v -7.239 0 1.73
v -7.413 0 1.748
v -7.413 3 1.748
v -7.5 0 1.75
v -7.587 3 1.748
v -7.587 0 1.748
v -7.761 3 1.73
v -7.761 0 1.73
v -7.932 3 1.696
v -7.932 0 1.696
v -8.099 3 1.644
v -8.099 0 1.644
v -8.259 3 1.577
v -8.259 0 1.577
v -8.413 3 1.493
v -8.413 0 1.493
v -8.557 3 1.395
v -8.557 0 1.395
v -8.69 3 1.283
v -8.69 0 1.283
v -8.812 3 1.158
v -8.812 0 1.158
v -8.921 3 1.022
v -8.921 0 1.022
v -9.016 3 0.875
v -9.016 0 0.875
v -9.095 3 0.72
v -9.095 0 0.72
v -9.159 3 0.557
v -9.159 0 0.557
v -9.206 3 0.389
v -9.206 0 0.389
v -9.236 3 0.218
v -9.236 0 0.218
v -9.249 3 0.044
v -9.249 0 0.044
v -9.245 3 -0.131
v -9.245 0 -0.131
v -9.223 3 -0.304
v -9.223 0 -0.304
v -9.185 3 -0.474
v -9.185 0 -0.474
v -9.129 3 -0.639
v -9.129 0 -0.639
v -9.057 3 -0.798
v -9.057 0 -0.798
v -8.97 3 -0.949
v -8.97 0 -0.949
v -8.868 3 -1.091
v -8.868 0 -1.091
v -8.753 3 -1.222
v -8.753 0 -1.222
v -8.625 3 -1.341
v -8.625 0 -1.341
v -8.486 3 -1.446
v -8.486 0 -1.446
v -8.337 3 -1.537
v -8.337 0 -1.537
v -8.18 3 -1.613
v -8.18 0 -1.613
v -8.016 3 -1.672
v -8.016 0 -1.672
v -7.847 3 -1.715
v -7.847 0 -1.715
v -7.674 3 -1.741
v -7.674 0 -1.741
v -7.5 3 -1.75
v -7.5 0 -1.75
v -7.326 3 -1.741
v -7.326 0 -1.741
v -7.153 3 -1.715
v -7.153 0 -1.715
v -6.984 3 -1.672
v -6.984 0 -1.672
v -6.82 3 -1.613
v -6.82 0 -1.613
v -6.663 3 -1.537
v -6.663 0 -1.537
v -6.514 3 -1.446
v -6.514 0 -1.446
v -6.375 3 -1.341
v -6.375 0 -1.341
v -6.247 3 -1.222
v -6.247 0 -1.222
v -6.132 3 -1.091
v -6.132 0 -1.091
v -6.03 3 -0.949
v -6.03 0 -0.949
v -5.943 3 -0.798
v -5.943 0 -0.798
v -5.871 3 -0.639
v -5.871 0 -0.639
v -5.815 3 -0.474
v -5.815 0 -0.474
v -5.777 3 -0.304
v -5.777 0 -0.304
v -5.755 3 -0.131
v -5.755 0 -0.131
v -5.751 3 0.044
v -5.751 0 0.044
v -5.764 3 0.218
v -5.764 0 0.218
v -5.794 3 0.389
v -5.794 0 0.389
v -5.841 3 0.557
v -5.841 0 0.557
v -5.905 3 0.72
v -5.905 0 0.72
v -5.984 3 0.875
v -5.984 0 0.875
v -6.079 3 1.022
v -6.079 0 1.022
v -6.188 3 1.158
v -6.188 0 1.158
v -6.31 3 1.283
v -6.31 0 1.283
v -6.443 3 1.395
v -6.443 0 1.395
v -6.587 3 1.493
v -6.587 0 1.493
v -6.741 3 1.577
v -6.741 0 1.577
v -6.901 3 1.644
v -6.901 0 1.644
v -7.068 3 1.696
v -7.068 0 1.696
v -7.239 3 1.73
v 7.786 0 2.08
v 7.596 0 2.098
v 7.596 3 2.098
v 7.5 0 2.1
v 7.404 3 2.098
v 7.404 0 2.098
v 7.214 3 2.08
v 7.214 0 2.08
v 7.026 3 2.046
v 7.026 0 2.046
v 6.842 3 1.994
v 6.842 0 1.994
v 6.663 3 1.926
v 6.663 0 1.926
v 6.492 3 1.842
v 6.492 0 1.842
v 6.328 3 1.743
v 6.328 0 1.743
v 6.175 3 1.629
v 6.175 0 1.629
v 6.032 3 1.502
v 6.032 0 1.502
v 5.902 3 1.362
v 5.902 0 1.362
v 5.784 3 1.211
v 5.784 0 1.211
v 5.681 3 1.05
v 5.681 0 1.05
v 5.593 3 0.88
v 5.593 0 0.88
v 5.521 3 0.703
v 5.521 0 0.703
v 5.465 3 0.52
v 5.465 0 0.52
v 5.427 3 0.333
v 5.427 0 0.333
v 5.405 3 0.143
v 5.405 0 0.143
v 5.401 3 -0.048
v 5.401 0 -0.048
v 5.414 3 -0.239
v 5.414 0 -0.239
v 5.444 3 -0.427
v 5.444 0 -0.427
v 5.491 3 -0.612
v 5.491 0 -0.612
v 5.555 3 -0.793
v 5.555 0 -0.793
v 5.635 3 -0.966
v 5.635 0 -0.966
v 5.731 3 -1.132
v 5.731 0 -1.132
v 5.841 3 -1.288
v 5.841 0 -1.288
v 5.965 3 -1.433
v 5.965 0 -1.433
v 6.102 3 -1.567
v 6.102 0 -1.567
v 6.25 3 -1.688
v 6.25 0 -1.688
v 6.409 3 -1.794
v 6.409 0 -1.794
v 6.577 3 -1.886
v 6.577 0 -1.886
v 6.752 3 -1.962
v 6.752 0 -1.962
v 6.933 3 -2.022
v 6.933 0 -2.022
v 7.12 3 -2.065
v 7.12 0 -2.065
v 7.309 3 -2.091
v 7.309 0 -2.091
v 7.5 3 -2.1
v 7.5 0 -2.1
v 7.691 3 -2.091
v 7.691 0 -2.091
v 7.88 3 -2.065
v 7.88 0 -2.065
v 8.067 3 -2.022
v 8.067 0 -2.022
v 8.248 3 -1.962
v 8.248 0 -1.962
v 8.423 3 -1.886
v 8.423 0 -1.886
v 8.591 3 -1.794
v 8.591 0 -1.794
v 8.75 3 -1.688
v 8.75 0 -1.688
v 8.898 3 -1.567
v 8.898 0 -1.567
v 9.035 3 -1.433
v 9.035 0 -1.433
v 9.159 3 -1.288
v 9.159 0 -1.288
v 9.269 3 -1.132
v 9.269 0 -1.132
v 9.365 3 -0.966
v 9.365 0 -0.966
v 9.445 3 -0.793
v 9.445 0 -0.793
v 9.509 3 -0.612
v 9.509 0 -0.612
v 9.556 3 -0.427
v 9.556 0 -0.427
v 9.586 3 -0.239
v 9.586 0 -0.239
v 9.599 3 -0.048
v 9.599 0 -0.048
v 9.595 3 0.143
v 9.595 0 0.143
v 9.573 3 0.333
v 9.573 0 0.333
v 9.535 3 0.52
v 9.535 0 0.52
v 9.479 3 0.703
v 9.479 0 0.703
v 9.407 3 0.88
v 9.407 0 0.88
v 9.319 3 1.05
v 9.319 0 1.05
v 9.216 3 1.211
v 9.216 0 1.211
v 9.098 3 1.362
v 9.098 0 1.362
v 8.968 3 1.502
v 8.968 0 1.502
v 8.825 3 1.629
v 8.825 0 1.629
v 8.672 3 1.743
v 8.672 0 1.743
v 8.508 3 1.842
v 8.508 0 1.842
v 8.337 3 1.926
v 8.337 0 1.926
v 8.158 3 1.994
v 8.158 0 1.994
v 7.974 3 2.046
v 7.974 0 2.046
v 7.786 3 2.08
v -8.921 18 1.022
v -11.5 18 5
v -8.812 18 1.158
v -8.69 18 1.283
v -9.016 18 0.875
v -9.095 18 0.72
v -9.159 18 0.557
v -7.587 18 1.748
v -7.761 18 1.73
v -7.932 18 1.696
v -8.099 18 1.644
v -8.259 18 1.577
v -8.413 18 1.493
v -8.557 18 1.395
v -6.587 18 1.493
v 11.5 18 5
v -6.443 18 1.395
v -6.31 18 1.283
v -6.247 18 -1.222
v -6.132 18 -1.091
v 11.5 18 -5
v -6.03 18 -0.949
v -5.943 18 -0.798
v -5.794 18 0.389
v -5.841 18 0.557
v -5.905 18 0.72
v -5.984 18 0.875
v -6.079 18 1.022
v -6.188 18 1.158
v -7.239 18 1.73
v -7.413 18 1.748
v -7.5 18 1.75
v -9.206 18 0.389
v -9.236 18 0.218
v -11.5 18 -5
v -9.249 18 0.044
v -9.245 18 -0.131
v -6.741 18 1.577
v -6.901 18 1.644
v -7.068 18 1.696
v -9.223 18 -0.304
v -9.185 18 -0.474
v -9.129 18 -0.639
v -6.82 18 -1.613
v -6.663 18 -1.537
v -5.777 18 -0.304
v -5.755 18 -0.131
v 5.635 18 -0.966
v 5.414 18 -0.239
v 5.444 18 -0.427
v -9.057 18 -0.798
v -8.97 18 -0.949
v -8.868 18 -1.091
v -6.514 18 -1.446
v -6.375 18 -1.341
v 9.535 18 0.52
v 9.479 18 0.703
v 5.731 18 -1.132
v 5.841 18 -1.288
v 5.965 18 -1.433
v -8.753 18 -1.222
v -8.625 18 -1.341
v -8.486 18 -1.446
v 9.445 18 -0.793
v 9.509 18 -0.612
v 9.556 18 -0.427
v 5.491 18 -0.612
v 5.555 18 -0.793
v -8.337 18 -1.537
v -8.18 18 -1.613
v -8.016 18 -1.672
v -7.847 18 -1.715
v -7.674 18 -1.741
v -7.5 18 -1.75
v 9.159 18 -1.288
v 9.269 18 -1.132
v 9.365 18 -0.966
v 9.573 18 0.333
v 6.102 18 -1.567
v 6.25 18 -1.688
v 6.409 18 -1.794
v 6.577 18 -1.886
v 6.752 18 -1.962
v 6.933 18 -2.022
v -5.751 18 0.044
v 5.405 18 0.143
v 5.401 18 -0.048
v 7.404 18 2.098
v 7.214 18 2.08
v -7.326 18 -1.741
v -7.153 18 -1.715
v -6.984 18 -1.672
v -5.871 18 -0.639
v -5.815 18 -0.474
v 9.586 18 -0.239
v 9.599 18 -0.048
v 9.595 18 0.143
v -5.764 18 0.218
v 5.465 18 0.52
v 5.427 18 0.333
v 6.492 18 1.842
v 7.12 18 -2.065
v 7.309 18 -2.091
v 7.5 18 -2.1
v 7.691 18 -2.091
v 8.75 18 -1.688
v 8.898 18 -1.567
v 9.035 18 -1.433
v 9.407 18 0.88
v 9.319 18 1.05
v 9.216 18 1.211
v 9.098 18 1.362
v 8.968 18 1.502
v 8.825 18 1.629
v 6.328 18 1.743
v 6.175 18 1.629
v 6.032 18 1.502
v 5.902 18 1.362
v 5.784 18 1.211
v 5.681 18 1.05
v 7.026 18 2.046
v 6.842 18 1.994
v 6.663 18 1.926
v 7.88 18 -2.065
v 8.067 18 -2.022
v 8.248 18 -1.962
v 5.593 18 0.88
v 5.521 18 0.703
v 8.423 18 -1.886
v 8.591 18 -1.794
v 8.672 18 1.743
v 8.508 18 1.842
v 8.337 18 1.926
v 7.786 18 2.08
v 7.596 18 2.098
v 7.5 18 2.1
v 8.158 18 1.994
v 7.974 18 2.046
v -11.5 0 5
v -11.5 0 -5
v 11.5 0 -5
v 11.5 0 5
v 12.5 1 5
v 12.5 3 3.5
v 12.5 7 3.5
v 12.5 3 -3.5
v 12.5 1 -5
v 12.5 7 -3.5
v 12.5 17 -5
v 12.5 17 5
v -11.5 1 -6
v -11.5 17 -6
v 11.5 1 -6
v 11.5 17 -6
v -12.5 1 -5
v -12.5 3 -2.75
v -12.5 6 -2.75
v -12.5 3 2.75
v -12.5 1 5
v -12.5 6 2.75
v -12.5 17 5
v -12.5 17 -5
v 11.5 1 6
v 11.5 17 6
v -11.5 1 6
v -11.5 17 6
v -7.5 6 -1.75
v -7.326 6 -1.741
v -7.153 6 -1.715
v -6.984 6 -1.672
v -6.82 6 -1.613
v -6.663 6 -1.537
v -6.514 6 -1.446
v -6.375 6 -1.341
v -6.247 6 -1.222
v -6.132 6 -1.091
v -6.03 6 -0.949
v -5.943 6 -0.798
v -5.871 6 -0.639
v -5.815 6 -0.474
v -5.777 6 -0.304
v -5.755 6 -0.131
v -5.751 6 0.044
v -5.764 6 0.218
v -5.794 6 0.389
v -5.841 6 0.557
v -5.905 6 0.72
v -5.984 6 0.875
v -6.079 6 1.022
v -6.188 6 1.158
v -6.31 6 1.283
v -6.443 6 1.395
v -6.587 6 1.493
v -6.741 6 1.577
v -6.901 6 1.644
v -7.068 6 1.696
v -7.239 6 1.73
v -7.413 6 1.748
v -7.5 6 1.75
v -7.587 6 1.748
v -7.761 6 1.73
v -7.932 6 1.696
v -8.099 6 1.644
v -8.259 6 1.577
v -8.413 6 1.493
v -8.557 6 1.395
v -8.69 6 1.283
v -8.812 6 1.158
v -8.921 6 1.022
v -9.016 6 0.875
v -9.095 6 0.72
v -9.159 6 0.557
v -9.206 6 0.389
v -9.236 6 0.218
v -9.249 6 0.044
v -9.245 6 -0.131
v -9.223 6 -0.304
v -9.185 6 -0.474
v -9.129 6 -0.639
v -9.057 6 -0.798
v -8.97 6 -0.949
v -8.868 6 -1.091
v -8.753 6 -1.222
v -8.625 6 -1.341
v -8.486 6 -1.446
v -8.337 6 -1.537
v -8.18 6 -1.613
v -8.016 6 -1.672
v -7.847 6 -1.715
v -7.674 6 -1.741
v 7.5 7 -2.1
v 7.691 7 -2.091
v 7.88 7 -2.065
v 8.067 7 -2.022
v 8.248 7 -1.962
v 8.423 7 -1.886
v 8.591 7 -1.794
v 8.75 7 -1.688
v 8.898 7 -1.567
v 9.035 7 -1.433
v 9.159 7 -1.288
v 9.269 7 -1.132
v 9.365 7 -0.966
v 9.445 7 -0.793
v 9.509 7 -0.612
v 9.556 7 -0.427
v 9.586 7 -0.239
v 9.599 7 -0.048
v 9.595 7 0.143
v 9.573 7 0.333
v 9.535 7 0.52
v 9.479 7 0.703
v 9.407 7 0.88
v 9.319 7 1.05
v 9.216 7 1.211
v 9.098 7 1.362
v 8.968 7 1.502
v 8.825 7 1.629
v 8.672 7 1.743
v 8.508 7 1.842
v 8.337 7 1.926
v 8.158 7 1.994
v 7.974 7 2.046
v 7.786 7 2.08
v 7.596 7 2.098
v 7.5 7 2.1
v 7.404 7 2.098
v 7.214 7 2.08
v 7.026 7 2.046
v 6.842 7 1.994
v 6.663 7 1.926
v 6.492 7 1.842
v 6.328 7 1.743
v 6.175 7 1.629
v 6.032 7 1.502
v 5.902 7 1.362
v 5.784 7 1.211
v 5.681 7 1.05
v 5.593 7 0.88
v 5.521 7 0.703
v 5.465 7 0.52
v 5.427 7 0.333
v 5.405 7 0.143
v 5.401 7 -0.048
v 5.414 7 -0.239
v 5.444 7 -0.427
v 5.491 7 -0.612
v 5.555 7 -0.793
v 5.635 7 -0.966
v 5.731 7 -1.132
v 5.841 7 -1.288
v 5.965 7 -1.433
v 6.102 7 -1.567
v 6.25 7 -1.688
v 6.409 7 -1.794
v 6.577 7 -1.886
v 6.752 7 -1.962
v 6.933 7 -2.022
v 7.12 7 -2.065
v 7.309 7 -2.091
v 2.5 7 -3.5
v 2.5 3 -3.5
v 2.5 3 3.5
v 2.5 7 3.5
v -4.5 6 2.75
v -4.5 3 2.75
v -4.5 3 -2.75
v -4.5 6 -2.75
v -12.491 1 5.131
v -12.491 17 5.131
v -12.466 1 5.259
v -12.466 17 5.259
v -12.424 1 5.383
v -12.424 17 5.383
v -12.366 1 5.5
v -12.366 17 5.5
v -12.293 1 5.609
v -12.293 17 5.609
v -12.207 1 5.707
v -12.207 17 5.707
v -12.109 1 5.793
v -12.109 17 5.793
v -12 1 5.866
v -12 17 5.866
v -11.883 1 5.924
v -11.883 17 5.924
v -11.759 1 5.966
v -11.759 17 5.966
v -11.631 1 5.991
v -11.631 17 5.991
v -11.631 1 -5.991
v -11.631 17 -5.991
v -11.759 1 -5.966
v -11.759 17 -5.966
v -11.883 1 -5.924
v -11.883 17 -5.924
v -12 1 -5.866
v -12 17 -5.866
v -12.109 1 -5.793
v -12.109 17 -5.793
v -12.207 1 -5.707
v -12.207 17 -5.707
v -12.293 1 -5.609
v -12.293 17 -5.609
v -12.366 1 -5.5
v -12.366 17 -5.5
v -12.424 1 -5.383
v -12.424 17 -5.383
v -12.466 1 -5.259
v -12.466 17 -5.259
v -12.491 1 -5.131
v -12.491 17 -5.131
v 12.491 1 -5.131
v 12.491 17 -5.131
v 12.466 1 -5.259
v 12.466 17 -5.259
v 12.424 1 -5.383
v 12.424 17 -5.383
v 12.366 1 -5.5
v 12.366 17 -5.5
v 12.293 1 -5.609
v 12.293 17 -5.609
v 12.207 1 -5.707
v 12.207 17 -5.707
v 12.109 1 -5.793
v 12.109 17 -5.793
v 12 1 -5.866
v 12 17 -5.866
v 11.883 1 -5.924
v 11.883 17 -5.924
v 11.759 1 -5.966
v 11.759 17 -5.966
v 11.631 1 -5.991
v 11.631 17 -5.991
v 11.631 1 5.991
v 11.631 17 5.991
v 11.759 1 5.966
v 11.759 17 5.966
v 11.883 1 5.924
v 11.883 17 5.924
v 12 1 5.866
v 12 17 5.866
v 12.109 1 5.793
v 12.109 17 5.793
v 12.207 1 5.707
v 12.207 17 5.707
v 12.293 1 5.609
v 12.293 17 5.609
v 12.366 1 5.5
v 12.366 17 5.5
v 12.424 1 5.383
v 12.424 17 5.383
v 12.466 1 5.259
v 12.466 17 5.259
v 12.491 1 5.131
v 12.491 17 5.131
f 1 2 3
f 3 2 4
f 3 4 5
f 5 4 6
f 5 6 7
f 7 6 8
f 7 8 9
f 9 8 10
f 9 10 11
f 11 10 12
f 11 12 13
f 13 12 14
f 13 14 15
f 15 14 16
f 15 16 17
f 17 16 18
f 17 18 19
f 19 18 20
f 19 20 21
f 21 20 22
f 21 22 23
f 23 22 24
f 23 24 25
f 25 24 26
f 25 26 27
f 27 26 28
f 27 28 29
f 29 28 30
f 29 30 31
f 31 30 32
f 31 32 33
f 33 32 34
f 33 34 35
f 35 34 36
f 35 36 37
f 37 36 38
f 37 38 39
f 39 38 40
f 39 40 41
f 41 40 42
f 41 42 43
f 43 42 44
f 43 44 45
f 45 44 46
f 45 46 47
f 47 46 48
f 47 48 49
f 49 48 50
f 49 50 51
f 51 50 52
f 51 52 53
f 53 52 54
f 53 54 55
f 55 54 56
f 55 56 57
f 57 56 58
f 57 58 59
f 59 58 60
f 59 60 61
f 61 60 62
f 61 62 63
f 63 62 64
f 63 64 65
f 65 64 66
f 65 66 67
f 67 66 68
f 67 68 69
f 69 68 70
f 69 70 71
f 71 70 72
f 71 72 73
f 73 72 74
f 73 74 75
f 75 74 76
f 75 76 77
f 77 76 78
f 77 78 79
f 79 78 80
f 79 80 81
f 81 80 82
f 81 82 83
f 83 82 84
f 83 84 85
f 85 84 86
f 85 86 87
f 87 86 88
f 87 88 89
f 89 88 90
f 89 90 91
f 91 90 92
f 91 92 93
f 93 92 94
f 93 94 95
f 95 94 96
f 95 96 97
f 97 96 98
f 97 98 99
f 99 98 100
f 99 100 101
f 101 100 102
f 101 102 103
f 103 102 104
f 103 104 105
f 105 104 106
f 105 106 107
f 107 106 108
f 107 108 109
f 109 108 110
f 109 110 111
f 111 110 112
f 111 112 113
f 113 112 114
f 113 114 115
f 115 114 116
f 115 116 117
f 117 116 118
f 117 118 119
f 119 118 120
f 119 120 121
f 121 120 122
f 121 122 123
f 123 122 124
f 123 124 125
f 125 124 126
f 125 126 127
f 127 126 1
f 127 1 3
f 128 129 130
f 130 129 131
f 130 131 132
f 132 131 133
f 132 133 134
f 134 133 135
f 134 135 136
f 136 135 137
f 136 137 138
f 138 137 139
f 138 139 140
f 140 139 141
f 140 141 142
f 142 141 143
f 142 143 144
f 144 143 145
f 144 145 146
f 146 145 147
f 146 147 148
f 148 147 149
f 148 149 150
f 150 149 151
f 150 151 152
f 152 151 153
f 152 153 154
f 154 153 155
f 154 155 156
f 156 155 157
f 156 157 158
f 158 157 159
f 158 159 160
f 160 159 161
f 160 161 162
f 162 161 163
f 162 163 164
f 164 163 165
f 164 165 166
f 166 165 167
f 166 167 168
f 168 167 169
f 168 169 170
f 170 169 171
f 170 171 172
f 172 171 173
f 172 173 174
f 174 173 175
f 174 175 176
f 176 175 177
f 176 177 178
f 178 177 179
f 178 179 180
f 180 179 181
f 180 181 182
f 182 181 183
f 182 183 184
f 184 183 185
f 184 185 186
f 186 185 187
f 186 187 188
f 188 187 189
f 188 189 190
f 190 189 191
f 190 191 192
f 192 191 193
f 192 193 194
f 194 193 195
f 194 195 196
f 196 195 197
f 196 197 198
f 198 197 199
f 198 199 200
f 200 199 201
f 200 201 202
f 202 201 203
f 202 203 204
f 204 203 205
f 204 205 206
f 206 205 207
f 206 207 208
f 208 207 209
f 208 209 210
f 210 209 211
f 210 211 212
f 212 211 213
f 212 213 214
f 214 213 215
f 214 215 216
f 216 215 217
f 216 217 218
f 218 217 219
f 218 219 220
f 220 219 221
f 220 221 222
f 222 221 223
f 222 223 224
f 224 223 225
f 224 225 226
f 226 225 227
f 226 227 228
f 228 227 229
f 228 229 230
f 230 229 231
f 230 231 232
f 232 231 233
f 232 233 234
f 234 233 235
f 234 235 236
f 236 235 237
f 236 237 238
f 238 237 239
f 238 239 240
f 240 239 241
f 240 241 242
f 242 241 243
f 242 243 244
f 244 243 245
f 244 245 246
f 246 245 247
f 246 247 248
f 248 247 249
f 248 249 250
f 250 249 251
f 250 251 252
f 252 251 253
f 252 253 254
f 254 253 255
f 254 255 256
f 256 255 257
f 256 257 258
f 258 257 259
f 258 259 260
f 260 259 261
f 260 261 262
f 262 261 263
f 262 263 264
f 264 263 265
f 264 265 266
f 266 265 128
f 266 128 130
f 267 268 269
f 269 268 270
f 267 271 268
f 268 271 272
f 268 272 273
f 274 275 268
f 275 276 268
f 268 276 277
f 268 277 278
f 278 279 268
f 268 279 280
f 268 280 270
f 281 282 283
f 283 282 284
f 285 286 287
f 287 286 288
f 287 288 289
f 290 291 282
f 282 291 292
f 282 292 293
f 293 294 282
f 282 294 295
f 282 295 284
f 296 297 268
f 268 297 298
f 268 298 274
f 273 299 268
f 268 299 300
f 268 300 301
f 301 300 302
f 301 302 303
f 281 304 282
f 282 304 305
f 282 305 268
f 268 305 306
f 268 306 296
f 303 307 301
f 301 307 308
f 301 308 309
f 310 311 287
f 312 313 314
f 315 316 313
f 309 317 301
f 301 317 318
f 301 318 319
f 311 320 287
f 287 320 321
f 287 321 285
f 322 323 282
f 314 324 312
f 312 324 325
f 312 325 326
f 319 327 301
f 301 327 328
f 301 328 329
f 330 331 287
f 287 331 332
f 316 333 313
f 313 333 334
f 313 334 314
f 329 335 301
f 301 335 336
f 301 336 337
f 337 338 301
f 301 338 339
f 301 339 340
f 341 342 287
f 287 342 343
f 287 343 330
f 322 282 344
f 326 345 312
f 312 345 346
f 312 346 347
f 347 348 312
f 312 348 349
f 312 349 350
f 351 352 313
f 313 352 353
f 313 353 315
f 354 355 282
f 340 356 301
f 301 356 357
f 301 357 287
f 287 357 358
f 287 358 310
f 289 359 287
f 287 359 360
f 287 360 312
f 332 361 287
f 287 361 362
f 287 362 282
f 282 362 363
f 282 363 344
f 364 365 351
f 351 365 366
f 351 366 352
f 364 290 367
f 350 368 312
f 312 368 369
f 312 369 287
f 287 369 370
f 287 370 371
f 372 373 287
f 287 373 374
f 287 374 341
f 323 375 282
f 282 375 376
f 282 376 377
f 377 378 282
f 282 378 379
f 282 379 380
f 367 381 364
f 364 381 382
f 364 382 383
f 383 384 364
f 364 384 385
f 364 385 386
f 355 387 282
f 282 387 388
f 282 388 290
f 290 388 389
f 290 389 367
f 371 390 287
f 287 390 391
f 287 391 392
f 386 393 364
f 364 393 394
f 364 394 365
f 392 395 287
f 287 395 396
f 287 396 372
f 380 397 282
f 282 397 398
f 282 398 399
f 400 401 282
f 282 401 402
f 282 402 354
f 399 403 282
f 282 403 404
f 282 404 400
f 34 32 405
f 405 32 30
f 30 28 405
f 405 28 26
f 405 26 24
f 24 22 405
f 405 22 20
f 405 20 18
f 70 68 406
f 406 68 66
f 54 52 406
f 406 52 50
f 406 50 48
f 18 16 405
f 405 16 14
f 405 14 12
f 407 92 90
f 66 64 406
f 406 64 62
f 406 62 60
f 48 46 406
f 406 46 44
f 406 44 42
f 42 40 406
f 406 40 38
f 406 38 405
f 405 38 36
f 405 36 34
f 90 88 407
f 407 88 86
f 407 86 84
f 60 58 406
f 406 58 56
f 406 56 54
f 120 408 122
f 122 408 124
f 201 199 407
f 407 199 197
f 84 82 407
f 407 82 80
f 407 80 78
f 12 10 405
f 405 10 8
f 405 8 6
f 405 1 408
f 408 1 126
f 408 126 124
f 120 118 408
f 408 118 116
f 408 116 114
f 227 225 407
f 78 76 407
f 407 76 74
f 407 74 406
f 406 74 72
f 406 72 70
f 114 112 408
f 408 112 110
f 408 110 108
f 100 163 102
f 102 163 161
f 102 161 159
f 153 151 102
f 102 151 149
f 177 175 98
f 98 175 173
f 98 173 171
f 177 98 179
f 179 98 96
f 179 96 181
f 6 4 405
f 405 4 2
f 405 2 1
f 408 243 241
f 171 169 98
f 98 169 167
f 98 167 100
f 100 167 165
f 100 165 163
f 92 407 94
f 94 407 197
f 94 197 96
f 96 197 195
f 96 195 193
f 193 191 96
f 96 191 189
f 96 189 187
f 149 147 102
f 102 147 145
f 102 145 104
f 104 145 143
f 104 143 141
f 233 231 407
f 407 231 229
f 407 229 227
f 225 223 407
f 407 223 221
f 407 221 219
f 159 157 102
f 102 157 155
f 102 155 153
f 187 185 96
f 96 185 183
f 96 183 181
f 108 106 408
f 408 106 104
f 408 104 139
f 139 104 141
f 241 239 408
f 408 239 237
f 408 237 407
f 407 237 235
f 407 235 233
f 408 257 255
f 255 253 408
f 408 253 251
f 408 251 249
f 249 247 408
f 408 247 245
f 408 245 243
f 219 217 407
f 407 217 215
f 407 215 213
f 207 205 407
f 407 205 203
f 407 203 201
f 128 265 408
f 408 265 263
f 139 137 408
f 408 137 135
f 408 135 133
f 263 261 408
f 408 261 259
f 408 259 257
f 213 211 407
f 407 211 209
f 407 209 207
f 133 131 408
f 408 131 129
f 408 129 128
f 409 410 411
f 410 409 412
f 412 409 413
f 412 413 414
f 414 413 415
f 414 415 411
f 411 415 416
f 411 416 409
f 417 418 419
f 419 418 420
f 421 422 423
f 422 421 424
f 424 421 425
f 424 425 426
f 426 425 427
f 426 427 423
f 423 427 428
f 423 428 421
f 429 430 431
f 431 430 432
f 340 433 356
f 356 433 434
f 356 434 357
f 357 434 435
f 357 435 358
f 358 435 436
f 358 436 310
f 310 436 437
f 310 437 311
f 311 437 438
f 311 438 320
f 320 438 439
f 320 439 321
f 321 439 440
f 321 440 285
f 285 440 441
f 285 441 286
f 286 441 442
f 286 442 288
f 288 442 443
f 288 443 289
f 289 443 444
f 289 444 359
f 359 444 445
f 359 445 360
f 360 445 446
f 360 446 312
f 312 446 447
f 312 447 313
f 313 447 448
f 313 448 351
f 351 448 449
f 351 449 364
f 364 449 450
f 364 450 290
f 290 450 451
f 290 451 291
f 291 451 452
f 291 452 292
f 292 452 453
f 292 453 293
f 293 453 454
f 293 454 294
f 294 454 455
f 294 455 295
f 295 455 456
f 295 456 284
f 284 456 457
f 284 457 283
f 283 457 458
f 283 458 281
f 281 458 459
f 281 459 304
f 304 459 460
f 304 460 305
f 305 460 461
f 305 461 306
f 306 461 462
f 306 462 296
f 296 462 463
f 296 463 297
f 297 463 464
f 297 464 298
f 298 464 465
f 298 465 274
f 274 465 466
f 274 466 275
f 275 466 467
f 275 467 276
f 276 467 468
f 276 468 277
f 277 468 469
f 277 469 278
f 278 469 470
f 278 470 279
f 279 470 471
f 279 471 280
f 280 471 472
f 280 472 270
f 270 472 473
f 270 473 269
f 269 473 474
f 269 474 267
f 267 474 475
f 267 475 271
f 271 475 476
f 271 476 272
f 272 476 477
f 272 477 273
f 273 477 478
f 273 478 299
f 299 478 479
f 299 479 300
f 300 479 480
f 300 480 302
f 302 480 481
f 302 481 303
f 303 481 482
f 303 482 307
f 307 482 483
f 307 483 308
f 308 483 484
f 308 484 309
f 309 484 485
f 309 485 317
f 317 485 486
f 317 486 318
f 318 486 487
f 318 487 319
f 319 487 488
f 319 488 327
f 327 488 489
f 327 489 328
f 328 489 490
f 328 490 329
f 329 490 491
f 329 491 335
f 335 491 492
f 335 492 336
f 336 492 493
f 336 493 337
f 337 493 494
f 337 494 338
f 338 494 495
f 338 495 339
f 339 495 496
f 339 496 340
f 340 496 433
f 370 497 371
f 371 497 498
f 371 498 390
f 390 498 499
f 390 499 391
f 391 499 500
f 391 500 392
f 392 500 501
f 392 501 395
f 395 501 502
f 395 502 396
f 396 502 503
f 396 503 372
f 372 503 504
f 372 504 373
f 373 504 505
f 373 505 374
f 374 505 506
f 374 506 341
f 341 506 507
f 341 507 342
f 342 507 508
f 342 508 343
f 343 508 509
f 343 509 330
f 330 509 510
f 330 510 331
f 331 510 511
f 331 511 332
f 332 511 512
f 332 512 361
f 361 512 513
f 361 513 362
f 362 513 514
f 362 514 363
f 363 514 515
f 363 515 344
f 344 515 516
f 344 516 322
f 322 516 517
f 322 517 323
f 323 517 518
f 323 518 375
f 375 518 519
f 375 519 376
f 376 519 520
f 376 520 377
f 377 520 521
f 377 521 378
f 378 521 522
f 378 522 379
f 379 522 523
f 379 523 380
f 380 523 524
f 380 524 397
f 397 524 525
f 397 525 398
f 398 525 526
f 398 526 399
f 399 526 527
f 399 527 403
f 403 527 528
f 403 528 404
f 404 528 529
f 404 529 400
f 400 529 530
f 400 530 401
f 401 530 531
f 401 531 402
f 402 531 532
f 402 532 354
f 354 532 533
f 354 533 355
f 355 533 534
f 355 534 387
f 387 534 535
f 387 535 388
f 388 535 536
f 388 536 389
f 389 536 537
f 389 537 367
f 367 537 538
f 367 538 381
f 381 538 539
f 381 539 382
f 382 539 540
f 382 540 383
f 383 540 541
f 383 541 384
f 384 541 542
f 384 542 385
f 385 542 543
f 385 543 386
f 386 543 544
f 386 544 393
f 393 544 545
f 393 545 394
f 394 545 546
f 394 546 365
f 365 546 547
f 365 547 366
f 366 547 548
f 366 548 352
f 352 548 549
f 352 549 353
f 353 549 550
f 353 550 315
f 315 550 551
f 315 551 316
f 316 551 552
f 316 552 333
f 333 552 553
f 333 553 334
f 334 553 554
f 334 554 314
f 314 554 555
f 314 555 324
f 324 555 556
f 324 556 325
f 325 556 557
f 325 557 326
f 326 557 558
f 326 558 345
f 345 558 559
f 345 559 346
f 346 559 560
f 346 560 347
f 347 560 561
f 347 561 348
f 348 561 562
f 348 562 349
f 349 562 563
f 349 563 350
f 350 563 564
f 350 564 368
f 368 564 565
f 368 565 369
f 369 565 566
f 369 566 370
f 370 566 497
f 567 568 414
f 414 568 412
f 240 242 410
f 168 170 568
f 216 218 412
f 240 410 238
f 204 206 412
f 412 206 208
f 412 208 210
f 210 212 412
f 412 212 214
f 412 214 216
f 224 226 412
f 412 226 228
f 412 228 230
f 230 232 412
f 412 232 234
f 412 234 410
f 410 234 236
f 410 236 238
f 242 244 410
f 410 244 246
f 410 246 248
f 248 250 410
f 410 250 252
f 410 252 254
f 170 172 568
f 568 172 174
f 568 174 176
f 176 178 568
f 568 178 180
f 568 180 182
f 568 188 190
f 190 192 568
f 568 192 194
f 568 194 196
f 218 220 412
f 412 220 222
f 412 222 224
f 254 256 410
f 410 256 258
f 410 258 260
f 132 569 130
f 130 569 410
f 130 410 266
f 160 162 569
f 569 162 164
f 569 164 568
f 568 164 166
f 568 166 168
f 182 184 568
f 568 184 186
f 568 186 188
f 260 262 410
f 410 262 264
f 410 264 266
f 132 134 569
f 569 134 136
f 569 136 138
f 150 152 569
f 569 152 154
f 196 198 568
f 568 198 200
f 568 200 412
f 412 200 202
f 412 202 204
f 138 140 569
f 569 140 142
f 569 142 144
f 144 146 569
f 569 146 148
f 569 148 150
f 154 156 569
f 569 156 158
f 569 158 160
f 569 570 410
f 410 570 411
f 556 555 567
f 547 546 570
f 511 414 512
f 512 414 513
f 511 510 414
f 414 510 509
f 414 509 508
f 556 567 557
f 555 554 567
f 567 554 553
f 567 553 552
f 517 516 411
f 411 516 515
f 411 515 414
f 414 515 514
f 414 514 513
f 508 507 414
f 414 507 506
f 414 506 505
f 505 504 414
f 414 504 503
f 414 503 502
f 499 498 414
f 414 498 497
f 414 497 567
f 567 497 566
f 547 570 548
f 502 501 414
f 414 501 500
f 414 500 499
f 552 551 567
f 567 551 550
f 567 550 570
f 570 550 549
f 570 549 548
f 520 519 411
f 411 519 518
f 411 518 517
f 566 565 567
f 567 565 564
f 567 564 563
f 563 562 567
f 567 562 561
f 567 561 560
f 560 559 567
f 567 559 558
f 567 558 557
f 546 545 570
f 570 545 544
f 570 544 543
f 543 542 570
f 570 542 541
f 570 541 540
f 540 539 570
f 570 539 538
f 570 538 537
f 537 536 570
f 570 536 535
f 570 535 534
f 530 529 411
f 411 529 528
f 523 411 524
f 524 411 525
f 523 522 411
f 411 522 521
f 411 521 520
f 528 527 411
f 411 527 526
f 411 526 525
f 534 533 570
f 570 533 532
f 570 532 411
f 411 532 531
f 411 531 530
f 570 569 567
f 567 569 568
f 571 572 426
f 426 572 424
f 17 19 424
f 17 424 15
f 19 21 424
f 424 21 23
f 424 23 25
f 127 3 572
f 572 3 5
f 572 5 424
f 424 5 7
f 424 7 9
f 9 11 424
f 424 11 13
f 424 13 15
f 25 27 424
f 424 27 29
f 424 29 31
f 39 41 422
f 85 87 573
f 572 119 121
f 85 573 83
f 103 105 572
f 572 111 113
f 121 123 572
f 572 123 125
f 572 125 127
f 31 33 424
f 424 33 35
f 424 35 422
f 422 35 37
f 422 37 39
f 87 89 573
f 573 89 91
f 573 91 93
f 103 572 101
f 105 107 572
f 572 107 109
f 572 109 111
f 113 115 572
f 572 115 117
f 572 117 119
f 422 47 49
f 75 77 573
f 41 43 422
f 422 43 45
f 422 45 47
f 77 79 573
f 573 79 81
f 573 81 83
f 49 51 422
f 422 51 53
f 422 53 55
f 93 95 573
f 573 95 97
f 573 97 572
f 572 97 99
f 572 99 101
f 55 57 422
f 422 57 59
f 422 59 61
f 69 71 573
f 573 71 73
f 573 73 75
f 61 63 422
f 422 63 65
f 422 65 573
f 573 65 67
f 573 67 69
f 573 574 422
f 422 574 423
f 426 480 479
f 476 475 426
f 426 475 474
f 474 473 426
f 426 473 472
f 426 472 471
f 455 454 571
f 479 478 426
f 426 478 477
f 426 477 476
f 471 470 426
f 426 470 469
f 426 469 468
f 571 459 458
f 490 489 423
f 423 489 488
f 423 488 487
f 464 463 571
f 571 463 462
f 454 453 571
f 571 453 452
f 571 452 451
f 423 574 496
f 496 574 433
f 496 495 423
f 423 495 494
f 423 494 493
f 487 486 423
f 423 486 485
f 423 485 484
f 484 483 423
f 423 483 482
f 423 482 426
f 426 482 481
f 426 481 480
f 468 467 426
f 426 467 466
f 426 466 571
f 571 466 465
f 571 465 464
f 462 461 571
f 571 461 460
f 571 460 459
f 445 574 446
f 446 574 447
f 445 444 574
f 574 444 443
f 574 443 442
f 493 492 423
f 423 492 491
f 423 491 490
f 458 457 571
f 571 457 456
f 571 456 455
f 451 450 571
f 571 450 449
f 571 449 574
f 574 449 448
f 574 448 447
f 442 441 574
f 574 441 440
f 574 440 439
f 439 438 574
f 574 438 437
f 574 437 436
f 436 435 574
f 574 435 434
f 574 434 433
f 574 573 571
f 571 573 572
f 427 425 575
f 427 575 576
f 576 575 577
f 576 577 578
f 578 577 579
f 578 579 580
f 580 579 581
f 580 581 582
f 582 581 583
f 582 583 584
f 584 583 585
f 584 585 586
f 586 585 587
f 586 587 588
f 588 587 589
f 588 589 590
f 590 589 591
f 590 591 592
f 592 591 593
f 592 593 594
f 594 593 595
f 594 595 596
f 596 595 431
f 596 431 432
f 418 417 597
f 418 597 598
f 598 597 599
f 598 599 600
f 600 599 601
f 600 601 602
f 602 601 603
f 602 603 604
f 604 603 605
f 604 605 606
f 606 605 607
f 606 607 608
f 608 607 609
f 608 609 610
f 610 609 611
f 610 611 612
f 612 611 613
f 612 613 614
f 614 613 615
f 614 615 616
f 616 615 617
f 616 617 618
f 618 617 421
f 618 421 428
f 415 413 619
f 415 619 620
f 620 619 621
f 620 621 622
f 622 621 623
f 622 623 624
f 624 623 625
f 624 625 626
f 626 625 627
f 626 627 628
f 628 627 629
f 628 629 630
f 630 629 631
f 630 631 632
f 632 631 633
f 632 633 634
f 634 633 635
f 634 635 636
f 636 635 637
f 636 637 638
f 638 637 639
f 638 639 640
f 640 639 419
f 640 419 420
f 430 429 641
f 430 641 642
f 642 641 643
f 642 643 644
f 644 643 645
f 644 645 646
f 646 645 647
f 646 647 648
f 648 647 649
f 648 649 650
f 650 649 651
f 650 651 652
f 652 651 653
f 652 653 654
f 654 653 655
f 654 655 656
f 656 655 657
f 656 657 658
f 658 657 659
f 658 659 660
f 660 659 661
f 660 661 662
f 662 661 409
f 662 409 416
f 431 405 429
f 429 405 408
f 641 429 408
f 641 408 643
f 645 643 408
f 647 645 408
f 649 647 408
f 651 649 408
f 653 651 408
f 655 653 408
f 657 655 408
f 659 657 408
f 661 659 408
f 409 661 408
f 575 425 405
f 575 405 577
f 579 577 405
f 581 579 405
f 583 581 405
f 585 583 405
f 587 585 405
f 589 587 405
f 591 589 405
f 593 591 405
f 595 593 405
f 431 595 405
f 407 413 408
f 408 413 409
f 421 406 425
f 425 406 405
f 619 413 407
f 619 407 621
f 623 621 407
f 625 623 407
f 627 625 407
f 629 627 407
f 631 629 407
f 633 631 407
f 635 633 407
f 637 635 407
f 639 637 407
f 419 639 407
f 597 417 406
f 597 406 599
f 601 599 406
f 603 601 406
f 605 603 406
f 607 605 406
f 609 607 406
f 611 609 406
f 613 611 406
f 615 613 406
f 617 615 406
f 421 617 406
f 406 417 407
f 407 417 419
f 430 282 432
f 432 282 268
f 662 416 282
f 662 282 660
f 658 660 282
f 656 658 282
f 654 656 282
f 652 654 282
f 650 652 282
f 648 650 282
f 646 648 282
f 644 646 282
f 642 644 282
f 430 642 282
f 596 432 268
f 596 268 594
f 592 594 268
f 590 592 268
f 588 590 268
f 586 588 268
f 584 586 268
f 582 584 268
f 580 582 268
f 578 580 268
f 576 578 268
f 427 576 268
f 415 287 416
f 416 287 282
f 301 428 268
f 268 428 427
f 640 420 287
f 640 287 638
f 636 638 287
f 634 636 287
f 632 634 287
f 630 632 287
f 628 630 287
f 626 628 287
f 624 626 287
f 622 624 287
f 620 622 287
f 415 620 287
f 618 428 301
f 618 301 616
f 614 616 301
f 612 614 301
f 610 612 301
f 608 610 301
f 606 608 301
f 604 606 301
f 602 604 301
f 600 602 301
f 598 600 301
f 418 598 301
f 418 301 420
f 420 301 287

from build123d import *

# Parameters (mm, degrees)
SKETCH2_W           = 25
SKETCH2_H           = 12
SKETCH2_R           = 1.75
SKETCH2_R_2         = 2.1
BOSS_EXTRUDE1_DEPTH = 18
SKETCH7_W           = 7
SKETCH7_H           = 4
CUT_EXTRUDE3_DEPTH  = 10
SKETCH9_W           = 5.5
SKETCH9_H           = 3
CUT_EXTRUDE4_DEPTH  = 8
FILLET1_R           = 1
CHAMFER1_SIZE       = 1


with BuildPart() as part:
    # Sketch2 → Boss-Extrude1 (new body)
    with BuildSketch(Plane(origin=(0, 0, 0), x_dir=(1, 0, 0), z_dir=(0, 1, 0))):
        Rectangle(SKETCH2_W, SKETCH2_H)
        with Locations(Location((-7.5, 0, 0), (0, 0, 270))):
            Circle(SKETCH2_R, mode=Mode.SUBTRACT)
        with Locations(Location((7.5, 0, 0), (0, 0, 270))):
            Circle(SKETCH2_R_2, mode=Mode.SUBTRACT)
    extrude(amount=BOSS_EXTRUDE1_DEPTH)

    # Sketch7 → Cut-Extrude3 (cut)
    with BuildSketch(Plane(origin=(12.5, 0, 0), x_dir=(0, 0, -1), z_dir=(1, 0, 0))):
        with Locations((0, 5)):
            Rectangle(SKETCH7_W, SKETCH7_H)
    extrude(amount=-CUT_EXTRUDE3_DEPTH, mode=Mode.SUBTRACT)

    # Sketch9 → Cut-Extrude4 (cut)
    with BuildSketch(Plane.ZY.offset(12.5)):
        with Locations((0, 4.5)):
            Rectangle(SKETCH9_W, SKETCH9_H)
    extrude(amount=-CUT_EXTRUDE4_DEPTH, mode=Mode.SUBTRACT)

    # Fillet1
    fillet1_edges = [part.edges().sort_by_distance(p)[0] for p in [
        (12.5, 9, 6),
        (-12.5, 9, 6),
        (-12.5, 9, -6),
        (12.5, 9, -6),
    ]]
    fillet(fillet1_edges, radius=FILLET1_R)

    # Chamfer1
    chamfer1_edges = [part.edges().sort_by_distance(p)[0] for p in [
        (0, 0, 6),
        (0, 18, 6),
        (12.5, 0, 0),
        (-12.5, 0, 0),
        (0, 0, -6),
        (12.207106781, 0, 5.707106781),
        (12.207106781, 0, -5.707106781),
        (-12.207106781, 0, -5.707106781),
        (-12.207106781, 0, 5.707106781),
        (-12.5, 18, 0),
        (12.5, 18, 0),
        (0, 18, -6),
        (12.207106781, 18, 5.707106781),
        (12.207106781, 18, -5.707106781),
        (-12.207106781, 18, -5.707106781),
        (-12.207106781, 18, 5.707106781),
    ]]
    chamfer(chamfer1_edges, length=CHAMFER1_SIZE)


solid = part.part
